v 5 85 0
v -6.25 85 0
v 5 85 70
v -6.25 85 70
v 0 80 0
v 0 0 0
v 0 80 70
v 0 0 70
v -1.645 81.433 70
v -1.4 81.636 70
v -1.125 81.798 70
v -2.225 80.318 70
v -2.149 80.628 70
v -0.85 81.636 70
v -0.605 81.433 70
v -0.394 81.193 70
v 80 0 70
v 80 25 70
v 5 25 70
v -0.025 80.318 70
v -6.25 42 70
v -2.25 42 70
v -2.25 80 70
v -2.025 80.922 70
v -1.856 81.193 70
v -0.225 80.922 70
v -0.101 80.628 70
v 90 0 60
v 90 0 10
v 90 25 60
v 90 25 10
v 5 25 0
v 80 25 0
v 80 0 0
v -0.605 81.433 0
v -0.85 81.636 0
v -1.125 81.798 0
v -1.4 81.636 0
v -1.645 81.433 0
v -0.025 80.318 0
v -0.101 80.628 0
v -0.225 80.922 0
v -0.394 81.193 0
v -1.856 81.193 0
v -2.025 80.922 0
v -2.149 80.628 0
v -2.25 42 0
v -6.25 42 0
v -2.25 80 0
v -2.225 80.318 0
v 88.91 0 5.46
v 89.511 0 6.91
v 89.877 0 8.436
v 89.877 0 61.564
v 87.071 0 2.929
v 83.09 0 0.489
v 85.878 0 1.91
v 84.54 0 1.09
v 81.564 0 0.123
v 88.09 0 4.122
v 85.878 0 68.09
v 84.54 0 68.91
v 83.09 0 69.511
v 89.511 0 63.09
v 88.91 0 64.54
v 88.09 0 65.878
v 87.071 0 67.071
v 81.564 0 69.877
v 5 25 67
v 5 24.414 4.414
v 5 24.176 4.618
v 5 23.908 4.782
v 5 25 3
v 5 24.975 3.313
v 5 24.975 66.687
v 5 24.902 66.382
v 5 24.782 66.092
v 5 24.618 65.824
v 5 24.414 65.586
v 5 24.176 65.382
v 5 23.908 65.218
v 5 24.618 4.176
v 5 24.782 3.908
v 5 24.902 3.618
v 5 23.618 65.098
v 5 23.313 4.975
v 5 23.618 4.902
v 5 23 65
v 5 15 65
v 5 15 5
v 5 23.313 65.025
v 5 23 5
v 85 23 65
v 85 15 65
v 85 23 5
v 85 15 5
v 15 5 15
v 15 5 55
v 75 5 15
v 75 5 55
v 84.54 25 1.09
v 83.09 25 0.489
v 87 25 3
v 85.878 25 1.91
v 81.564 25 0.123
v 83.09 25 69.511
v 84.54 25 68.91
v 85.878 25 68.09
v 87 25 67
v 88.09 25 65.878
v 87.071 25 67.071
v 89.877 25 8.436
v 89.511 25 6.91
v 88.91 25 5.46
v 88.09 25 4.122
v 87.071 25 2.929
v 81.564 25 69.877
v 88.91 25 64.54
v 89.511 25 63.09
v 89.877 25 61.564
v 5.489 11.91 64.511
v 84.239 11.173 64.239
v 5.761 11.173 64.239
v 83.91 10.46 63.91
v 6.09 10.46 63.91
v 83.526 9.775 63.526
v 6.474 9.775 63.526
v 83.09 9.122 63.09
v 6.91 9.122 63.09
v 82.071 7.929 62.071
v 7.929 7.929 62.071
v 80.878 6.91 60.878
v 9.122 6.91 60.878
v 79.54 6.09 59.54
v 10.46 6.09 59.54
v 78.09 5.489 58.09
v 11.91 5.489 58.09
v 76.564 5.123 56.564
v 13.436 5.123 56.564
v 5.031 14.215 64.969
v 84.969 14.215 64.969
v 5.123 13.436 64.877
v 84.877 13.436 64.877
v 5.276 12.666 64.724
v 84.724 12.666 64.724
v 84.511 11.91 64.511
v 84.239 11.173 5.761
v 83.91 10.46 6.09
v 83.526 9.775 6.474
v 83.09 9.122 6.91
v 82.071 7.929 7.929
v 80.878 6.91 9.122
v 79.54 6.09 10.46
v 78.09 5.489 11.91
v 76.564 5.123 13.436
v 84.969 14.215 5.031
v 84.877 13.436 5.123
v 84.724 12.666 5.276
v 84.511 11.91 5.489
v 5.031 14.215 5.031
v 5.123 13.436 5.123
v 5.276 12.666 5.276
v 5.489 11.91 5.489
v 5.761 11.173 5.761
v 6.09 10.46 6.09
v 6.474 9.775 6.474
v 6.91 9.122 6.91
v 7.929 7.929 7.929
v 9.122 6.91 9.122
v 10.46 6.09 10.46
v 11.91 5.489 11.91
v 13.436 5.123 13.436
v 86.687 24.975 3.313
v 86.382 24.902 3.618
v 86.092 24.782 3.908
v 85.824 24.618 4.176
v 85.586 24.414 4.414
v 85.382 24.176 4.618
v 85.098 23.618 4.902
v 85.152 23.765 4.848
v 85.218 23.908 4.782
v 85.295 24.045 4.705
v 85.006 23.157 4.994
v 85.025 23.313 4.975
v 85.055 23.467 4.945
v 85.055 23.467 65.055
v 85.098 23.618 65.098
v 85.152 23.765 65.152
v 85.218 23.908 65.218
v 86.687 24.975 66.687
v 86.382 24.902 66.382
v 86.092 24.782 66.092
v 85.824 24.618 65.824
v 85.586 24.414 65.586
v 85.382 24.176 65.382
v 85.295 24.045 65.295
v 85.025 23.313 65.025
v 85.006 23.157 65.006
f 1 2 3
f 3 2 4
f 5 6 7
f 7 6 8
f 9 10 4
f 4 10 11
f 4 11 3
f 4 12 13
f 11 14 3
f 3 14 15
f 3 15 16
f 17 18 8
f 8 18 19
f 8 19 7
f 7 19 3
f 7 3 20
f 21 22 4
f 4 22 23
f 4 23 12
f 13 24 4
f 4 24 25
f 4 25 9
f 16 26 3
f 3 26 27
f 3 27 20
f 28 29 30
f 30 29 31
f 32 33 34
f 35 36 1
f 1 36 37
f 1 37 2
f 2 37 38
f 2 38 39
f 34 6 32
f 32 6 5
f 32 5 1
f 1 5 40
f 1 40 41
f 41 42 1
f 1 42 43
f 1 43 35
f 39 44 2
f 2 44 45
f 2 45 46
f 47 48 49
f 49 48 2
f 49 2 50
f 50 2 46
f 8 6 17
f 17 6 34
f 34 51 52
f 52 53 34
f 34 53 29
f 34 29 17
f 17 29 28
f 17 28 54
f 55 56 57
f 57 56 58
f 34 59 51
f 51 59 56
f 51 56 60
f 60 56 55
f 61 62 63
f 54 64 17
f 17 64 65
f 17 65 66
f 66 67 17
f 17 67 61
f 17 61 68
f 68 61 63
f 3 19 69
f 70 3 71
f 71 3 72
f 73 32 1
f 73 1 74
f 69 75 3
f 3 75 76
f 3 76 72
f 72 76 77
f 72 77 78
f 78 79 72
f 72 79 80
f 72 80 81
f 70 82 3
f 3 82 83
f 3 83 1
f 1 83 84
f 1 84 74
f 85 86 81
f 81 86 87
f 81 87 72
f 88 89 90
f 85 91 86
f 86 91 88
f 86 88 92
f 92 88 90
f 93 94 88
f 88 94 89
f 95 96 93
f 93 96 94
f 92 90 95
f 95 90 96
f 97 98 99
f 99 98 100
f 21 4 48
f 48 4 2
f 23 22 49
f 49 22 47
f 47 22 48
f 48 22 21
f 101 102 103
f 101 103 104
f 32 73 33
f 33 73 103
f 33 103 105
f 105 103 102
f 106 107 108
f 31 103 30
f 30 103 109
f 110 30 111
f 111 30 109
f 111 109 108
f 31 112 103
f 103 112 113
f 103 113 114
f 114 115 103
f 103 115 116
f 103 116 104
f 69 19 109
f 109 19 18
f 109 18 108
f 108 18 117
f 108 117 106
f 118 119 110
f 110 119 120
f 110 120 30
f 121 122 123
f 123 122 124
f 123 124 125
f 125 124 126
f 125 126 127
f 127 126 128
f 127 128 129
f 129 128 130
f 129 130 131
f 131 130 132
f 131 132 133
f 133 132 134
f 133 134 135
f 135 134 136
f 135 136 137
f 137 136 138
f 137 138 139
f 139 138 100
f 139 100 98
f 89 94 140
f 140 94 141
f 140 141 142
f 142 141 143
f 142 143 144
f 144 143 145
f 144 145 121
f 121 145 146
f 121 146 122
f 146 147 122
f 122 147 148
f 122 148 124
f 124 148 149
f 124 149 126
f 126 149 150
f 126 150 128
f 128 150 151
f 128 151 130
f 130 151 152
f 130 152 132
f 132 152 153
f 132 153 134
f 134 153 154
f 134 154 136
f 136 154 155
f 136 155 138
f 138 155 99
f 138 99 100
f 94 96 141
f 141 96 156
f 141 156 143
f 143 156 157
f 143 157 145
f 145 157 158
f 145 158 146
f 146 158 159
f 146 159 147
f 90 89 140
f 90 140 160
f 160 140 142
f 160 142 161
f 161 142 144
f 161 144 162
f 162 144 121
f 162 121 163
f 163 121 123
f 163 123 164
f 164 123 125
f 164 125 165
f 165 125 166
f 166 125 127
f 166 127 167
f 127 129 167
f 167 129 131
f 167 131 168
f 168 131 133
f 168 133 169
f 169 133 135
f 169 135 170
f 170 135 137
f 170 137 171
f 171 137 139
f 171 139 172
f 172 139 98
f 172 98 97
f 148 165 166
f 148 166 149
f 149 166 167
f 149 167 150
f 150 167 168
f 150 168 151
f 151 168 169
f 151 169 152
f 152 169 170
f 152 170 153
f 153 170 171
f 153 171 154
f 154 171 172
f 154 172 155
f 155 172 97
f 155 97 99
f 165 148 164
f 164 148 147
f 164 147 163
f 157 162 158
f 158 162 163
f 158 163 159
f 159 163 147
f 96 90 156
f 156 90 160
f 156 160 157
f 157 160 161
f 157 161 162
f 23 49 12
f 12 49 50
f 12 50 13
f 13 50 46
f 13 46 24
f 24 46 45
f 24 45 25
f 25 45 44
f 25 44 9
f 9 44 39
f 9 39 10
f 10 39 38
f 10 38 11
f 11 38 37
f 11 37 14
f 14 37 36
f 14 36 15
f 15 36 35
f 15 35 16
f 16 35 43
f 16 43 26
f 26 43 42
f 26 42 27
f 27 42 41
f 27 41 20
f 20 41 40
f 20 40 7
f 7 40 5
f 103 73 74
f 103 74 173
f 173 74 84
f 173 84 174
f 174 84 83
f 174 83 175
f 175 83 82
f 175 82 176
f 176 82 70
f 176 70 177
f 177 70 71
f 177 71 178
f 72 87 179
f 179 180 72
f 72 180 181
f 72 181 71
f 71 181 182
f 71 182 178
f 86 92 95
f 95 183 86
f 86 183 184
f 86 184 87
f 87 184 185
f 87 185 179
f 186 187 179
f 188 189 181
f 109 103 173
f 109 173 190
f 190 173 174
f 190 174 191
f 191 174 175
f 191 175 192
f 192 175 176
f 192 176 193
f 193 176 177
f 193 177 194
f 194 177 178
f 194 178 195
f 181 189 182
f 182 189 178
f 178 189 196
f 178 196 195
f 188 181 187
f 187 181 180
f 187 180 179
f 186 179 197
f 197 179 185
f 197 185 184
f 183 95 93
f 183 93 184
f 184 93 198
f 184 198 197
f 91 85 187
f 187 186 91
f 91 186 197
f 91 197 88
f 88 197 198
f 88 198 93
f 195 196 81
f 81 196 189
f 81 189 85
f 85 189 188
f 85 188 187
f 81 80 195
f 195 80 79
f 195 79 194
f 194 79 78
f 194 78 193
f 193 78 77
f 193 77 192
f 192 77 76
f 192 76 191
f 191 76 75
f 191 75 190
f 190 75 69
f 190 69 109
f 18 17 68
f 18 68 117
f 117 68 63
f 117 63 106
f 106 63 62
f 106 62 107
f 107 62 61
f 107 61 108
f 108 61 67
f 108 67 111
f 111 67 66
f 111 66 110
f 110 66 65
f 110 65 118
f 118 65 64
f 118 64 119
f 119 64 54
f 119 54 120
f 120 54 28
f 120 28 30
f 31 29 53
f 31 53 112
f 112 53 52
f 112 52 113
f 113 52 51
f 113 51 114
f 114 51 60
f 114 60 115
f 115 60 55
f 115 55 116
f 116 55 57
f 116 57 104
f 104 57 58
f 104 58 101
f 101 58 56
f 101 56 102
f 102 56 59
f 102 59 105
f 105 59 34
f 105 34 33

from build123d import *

# Parameters (mm, degrees)
SKETCH1_W           = 90
SKETCH1_H           = 70
BOSS_EXTRUDE1_DEPTH = 5
SKETCH2_W           = 90
SKETCH2_H           = 70
SKETCH2_W_2         = 80
SKETCH2_H_2         = 60
BOSS_EXTRUDE2_DEPTH = 80
SKETCH3_W           = 70
SKETCH3_H           = 3
BOSS_EXTRUDE4_DEPTH = 6.25
SKETCH4_W           = 4
SKETCH4_H           = 70
BOSS_EXTRUDE5_DEPTH = 40
SKETCH5_W           = 70
SKETCH5_H           = 60
CUT_EXTRUDE3_DEPTH  = 85
FILLET1_R           = 10
FILLET2_R           = 2
FILLET3_R           = 2
FILLET4_R           = 10


with BuildPart() as part:
    # Sketch1 → Boss-Extrude1 (new body)
    with BuildSketch(Plane(origin=(0, 0, 0), x_dir=(1, 0, 0), z_dir=(0, 1, 0))):
        with Locations((45, -35)):
            Rectangle(SKETCH1_W, SKETCH1_H)
    extrude(amount=BOSS_EXTRUDE1_DEPTH)

    # Sketch2 → Boss-Extrude2 (add)
    with BuildSketch(Plane(origin=(0, 5, 0), x_dir=(1, 0, 0), z_dir=(0, 1, 0))):
        with Locations((45, -35)):
            Rectangle(SKETCH2_W, SKETCH2_H)
        with Locations((45, -35)):
            Rectangle(SKETCH2_W_2, SKETCH2_H_2, mode=Mode.SUBTRACT)
    extrude(amount=BOSS_EXTRUDE2_DEPTH)

    # Sketch3 → Boss-Extrude4 (add)
    with BuildSketch(Plane.ZY):
        with Locations((35, 83.5)):
            Rectangle(SKETCH3_W, SKETCH3_H)
    extrude(amount=BOSS_EXTRUDE4_DEPTH)

    # Sketch4 → Boss-Extrude5 (add)
    with BuildSketch(Plane.XZ.offset(-82)):
        with Locations((-4.25, 35)):
            Rectangle(SKETCH4_W, SKETCH4_H)
    extrude(amount=BOSS_EXTRUDE5_DEPTH)

    # Sketch5 → Cut-Extrude3 (cut)
    with BuildSketch(Plane(origin=(90, 0, 0), x_dir=(0, 0, -1), z_dir=(1, 0, 0))):
        with Locations((-35, 55)):
            Rectangle(SKETCH5_W, SKETCH5_H)
    extrude(amount=-CUT_EXTRUDE3_DEPTH, mode=Mode.SUBTRACT)

    # Fillet1
    fillet1_edges = [part.edges().sort_by_distance(p)[0] for p in [
        (5, 5, 35),
        (45, 5, 65),
        (85, 5, 35),
        (45, 5, 5),
    ]]
    fillet(fillet1_edges, radius=FILLET1_R)

    # Fillet2
    # the kernel refuses this fillet: 2 mm, written as the material it adds along each edge
    with BuildSketch(Plane(origin=(0, 82, 70), x_dir=(-1, 0, 0), z_dir=(0, 0, -1)), Plane(origin=(-2.25, 82, 70), x_dir=(0, -1, 0), z_dir=(0, 0, -1))) as fillet2_piece_1:
        with BuildLine():
            CenterArc((FILLET2_R, -FILLET2_R), FILLET2_R, 90, 90)
            Line((0, -FILLET2_R), (0, 0))
            Line((0, 0), (FILLET2_R, 0))
        make_face()
    extrude(amount=70)

    # Fillet3
    fillet3_edges = [part.edges().sort_by_distance(p)[0] for p in [
        (45, 25, 5),
        (85, 25, 35),
        (45, 25, 65),
    ]]
    fillet(fillet3_edges, radius=FILLET3_R)

    # Fillet4
    fillet4_edges = [part.edges().sort_by_distance(p)[0] for p in [
        (90, 12.5, 0),
        (90, 12.5, 70),
    ]]
    fillet(fillet4_edges, radius=FILLET4_R)


solid = part.part
